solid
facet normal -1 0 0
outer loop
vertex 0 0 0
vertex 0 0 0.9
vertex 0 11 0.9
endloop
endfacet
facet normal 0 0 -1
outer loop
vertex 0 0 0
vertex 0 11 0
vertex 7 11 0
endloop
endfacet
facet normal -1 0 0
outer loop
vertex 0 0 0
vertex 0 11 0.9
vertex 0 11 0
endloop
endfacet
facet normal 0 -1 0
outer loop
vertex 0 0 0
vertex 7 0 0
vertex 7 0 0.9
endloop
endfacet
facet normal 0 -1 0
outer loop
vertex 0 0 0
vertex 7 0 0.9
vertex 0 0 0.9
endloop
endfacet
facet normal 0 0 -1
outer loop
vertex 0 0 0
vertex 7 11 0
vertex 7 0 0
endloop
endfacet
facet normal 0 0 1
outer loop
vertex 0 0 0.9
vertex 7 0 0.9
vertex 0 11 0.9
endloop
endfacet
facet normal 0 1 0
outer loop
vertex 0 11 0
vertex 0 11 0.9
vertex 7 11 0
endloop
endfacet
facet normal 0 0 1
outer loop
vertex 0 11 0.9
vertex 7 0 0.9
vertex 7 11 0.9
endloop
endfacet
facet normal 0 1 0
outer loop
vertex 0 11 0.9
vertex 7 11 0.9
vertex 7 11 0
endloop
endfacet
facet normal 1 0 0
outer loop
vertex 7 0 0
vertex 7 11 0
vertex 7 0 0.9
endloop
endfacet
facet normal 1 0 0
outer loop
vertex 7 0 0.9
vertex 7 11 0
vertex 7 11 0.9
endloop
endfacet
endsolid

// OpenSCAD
/* Warning, this is a very basic generator with a lot of approximation 
input data : [VQFN, QMA, 7x11x0.9mm, 60, , A, C04-01286A]
generated by com.zoubworld.electronics.cad.model3d.Basic
Date : Sun Feb 15 10:50:49 CET 2026
*/

//body
color("black")
translate([0,0,0])
cube([7.0,11.0,0.9], center=false);
